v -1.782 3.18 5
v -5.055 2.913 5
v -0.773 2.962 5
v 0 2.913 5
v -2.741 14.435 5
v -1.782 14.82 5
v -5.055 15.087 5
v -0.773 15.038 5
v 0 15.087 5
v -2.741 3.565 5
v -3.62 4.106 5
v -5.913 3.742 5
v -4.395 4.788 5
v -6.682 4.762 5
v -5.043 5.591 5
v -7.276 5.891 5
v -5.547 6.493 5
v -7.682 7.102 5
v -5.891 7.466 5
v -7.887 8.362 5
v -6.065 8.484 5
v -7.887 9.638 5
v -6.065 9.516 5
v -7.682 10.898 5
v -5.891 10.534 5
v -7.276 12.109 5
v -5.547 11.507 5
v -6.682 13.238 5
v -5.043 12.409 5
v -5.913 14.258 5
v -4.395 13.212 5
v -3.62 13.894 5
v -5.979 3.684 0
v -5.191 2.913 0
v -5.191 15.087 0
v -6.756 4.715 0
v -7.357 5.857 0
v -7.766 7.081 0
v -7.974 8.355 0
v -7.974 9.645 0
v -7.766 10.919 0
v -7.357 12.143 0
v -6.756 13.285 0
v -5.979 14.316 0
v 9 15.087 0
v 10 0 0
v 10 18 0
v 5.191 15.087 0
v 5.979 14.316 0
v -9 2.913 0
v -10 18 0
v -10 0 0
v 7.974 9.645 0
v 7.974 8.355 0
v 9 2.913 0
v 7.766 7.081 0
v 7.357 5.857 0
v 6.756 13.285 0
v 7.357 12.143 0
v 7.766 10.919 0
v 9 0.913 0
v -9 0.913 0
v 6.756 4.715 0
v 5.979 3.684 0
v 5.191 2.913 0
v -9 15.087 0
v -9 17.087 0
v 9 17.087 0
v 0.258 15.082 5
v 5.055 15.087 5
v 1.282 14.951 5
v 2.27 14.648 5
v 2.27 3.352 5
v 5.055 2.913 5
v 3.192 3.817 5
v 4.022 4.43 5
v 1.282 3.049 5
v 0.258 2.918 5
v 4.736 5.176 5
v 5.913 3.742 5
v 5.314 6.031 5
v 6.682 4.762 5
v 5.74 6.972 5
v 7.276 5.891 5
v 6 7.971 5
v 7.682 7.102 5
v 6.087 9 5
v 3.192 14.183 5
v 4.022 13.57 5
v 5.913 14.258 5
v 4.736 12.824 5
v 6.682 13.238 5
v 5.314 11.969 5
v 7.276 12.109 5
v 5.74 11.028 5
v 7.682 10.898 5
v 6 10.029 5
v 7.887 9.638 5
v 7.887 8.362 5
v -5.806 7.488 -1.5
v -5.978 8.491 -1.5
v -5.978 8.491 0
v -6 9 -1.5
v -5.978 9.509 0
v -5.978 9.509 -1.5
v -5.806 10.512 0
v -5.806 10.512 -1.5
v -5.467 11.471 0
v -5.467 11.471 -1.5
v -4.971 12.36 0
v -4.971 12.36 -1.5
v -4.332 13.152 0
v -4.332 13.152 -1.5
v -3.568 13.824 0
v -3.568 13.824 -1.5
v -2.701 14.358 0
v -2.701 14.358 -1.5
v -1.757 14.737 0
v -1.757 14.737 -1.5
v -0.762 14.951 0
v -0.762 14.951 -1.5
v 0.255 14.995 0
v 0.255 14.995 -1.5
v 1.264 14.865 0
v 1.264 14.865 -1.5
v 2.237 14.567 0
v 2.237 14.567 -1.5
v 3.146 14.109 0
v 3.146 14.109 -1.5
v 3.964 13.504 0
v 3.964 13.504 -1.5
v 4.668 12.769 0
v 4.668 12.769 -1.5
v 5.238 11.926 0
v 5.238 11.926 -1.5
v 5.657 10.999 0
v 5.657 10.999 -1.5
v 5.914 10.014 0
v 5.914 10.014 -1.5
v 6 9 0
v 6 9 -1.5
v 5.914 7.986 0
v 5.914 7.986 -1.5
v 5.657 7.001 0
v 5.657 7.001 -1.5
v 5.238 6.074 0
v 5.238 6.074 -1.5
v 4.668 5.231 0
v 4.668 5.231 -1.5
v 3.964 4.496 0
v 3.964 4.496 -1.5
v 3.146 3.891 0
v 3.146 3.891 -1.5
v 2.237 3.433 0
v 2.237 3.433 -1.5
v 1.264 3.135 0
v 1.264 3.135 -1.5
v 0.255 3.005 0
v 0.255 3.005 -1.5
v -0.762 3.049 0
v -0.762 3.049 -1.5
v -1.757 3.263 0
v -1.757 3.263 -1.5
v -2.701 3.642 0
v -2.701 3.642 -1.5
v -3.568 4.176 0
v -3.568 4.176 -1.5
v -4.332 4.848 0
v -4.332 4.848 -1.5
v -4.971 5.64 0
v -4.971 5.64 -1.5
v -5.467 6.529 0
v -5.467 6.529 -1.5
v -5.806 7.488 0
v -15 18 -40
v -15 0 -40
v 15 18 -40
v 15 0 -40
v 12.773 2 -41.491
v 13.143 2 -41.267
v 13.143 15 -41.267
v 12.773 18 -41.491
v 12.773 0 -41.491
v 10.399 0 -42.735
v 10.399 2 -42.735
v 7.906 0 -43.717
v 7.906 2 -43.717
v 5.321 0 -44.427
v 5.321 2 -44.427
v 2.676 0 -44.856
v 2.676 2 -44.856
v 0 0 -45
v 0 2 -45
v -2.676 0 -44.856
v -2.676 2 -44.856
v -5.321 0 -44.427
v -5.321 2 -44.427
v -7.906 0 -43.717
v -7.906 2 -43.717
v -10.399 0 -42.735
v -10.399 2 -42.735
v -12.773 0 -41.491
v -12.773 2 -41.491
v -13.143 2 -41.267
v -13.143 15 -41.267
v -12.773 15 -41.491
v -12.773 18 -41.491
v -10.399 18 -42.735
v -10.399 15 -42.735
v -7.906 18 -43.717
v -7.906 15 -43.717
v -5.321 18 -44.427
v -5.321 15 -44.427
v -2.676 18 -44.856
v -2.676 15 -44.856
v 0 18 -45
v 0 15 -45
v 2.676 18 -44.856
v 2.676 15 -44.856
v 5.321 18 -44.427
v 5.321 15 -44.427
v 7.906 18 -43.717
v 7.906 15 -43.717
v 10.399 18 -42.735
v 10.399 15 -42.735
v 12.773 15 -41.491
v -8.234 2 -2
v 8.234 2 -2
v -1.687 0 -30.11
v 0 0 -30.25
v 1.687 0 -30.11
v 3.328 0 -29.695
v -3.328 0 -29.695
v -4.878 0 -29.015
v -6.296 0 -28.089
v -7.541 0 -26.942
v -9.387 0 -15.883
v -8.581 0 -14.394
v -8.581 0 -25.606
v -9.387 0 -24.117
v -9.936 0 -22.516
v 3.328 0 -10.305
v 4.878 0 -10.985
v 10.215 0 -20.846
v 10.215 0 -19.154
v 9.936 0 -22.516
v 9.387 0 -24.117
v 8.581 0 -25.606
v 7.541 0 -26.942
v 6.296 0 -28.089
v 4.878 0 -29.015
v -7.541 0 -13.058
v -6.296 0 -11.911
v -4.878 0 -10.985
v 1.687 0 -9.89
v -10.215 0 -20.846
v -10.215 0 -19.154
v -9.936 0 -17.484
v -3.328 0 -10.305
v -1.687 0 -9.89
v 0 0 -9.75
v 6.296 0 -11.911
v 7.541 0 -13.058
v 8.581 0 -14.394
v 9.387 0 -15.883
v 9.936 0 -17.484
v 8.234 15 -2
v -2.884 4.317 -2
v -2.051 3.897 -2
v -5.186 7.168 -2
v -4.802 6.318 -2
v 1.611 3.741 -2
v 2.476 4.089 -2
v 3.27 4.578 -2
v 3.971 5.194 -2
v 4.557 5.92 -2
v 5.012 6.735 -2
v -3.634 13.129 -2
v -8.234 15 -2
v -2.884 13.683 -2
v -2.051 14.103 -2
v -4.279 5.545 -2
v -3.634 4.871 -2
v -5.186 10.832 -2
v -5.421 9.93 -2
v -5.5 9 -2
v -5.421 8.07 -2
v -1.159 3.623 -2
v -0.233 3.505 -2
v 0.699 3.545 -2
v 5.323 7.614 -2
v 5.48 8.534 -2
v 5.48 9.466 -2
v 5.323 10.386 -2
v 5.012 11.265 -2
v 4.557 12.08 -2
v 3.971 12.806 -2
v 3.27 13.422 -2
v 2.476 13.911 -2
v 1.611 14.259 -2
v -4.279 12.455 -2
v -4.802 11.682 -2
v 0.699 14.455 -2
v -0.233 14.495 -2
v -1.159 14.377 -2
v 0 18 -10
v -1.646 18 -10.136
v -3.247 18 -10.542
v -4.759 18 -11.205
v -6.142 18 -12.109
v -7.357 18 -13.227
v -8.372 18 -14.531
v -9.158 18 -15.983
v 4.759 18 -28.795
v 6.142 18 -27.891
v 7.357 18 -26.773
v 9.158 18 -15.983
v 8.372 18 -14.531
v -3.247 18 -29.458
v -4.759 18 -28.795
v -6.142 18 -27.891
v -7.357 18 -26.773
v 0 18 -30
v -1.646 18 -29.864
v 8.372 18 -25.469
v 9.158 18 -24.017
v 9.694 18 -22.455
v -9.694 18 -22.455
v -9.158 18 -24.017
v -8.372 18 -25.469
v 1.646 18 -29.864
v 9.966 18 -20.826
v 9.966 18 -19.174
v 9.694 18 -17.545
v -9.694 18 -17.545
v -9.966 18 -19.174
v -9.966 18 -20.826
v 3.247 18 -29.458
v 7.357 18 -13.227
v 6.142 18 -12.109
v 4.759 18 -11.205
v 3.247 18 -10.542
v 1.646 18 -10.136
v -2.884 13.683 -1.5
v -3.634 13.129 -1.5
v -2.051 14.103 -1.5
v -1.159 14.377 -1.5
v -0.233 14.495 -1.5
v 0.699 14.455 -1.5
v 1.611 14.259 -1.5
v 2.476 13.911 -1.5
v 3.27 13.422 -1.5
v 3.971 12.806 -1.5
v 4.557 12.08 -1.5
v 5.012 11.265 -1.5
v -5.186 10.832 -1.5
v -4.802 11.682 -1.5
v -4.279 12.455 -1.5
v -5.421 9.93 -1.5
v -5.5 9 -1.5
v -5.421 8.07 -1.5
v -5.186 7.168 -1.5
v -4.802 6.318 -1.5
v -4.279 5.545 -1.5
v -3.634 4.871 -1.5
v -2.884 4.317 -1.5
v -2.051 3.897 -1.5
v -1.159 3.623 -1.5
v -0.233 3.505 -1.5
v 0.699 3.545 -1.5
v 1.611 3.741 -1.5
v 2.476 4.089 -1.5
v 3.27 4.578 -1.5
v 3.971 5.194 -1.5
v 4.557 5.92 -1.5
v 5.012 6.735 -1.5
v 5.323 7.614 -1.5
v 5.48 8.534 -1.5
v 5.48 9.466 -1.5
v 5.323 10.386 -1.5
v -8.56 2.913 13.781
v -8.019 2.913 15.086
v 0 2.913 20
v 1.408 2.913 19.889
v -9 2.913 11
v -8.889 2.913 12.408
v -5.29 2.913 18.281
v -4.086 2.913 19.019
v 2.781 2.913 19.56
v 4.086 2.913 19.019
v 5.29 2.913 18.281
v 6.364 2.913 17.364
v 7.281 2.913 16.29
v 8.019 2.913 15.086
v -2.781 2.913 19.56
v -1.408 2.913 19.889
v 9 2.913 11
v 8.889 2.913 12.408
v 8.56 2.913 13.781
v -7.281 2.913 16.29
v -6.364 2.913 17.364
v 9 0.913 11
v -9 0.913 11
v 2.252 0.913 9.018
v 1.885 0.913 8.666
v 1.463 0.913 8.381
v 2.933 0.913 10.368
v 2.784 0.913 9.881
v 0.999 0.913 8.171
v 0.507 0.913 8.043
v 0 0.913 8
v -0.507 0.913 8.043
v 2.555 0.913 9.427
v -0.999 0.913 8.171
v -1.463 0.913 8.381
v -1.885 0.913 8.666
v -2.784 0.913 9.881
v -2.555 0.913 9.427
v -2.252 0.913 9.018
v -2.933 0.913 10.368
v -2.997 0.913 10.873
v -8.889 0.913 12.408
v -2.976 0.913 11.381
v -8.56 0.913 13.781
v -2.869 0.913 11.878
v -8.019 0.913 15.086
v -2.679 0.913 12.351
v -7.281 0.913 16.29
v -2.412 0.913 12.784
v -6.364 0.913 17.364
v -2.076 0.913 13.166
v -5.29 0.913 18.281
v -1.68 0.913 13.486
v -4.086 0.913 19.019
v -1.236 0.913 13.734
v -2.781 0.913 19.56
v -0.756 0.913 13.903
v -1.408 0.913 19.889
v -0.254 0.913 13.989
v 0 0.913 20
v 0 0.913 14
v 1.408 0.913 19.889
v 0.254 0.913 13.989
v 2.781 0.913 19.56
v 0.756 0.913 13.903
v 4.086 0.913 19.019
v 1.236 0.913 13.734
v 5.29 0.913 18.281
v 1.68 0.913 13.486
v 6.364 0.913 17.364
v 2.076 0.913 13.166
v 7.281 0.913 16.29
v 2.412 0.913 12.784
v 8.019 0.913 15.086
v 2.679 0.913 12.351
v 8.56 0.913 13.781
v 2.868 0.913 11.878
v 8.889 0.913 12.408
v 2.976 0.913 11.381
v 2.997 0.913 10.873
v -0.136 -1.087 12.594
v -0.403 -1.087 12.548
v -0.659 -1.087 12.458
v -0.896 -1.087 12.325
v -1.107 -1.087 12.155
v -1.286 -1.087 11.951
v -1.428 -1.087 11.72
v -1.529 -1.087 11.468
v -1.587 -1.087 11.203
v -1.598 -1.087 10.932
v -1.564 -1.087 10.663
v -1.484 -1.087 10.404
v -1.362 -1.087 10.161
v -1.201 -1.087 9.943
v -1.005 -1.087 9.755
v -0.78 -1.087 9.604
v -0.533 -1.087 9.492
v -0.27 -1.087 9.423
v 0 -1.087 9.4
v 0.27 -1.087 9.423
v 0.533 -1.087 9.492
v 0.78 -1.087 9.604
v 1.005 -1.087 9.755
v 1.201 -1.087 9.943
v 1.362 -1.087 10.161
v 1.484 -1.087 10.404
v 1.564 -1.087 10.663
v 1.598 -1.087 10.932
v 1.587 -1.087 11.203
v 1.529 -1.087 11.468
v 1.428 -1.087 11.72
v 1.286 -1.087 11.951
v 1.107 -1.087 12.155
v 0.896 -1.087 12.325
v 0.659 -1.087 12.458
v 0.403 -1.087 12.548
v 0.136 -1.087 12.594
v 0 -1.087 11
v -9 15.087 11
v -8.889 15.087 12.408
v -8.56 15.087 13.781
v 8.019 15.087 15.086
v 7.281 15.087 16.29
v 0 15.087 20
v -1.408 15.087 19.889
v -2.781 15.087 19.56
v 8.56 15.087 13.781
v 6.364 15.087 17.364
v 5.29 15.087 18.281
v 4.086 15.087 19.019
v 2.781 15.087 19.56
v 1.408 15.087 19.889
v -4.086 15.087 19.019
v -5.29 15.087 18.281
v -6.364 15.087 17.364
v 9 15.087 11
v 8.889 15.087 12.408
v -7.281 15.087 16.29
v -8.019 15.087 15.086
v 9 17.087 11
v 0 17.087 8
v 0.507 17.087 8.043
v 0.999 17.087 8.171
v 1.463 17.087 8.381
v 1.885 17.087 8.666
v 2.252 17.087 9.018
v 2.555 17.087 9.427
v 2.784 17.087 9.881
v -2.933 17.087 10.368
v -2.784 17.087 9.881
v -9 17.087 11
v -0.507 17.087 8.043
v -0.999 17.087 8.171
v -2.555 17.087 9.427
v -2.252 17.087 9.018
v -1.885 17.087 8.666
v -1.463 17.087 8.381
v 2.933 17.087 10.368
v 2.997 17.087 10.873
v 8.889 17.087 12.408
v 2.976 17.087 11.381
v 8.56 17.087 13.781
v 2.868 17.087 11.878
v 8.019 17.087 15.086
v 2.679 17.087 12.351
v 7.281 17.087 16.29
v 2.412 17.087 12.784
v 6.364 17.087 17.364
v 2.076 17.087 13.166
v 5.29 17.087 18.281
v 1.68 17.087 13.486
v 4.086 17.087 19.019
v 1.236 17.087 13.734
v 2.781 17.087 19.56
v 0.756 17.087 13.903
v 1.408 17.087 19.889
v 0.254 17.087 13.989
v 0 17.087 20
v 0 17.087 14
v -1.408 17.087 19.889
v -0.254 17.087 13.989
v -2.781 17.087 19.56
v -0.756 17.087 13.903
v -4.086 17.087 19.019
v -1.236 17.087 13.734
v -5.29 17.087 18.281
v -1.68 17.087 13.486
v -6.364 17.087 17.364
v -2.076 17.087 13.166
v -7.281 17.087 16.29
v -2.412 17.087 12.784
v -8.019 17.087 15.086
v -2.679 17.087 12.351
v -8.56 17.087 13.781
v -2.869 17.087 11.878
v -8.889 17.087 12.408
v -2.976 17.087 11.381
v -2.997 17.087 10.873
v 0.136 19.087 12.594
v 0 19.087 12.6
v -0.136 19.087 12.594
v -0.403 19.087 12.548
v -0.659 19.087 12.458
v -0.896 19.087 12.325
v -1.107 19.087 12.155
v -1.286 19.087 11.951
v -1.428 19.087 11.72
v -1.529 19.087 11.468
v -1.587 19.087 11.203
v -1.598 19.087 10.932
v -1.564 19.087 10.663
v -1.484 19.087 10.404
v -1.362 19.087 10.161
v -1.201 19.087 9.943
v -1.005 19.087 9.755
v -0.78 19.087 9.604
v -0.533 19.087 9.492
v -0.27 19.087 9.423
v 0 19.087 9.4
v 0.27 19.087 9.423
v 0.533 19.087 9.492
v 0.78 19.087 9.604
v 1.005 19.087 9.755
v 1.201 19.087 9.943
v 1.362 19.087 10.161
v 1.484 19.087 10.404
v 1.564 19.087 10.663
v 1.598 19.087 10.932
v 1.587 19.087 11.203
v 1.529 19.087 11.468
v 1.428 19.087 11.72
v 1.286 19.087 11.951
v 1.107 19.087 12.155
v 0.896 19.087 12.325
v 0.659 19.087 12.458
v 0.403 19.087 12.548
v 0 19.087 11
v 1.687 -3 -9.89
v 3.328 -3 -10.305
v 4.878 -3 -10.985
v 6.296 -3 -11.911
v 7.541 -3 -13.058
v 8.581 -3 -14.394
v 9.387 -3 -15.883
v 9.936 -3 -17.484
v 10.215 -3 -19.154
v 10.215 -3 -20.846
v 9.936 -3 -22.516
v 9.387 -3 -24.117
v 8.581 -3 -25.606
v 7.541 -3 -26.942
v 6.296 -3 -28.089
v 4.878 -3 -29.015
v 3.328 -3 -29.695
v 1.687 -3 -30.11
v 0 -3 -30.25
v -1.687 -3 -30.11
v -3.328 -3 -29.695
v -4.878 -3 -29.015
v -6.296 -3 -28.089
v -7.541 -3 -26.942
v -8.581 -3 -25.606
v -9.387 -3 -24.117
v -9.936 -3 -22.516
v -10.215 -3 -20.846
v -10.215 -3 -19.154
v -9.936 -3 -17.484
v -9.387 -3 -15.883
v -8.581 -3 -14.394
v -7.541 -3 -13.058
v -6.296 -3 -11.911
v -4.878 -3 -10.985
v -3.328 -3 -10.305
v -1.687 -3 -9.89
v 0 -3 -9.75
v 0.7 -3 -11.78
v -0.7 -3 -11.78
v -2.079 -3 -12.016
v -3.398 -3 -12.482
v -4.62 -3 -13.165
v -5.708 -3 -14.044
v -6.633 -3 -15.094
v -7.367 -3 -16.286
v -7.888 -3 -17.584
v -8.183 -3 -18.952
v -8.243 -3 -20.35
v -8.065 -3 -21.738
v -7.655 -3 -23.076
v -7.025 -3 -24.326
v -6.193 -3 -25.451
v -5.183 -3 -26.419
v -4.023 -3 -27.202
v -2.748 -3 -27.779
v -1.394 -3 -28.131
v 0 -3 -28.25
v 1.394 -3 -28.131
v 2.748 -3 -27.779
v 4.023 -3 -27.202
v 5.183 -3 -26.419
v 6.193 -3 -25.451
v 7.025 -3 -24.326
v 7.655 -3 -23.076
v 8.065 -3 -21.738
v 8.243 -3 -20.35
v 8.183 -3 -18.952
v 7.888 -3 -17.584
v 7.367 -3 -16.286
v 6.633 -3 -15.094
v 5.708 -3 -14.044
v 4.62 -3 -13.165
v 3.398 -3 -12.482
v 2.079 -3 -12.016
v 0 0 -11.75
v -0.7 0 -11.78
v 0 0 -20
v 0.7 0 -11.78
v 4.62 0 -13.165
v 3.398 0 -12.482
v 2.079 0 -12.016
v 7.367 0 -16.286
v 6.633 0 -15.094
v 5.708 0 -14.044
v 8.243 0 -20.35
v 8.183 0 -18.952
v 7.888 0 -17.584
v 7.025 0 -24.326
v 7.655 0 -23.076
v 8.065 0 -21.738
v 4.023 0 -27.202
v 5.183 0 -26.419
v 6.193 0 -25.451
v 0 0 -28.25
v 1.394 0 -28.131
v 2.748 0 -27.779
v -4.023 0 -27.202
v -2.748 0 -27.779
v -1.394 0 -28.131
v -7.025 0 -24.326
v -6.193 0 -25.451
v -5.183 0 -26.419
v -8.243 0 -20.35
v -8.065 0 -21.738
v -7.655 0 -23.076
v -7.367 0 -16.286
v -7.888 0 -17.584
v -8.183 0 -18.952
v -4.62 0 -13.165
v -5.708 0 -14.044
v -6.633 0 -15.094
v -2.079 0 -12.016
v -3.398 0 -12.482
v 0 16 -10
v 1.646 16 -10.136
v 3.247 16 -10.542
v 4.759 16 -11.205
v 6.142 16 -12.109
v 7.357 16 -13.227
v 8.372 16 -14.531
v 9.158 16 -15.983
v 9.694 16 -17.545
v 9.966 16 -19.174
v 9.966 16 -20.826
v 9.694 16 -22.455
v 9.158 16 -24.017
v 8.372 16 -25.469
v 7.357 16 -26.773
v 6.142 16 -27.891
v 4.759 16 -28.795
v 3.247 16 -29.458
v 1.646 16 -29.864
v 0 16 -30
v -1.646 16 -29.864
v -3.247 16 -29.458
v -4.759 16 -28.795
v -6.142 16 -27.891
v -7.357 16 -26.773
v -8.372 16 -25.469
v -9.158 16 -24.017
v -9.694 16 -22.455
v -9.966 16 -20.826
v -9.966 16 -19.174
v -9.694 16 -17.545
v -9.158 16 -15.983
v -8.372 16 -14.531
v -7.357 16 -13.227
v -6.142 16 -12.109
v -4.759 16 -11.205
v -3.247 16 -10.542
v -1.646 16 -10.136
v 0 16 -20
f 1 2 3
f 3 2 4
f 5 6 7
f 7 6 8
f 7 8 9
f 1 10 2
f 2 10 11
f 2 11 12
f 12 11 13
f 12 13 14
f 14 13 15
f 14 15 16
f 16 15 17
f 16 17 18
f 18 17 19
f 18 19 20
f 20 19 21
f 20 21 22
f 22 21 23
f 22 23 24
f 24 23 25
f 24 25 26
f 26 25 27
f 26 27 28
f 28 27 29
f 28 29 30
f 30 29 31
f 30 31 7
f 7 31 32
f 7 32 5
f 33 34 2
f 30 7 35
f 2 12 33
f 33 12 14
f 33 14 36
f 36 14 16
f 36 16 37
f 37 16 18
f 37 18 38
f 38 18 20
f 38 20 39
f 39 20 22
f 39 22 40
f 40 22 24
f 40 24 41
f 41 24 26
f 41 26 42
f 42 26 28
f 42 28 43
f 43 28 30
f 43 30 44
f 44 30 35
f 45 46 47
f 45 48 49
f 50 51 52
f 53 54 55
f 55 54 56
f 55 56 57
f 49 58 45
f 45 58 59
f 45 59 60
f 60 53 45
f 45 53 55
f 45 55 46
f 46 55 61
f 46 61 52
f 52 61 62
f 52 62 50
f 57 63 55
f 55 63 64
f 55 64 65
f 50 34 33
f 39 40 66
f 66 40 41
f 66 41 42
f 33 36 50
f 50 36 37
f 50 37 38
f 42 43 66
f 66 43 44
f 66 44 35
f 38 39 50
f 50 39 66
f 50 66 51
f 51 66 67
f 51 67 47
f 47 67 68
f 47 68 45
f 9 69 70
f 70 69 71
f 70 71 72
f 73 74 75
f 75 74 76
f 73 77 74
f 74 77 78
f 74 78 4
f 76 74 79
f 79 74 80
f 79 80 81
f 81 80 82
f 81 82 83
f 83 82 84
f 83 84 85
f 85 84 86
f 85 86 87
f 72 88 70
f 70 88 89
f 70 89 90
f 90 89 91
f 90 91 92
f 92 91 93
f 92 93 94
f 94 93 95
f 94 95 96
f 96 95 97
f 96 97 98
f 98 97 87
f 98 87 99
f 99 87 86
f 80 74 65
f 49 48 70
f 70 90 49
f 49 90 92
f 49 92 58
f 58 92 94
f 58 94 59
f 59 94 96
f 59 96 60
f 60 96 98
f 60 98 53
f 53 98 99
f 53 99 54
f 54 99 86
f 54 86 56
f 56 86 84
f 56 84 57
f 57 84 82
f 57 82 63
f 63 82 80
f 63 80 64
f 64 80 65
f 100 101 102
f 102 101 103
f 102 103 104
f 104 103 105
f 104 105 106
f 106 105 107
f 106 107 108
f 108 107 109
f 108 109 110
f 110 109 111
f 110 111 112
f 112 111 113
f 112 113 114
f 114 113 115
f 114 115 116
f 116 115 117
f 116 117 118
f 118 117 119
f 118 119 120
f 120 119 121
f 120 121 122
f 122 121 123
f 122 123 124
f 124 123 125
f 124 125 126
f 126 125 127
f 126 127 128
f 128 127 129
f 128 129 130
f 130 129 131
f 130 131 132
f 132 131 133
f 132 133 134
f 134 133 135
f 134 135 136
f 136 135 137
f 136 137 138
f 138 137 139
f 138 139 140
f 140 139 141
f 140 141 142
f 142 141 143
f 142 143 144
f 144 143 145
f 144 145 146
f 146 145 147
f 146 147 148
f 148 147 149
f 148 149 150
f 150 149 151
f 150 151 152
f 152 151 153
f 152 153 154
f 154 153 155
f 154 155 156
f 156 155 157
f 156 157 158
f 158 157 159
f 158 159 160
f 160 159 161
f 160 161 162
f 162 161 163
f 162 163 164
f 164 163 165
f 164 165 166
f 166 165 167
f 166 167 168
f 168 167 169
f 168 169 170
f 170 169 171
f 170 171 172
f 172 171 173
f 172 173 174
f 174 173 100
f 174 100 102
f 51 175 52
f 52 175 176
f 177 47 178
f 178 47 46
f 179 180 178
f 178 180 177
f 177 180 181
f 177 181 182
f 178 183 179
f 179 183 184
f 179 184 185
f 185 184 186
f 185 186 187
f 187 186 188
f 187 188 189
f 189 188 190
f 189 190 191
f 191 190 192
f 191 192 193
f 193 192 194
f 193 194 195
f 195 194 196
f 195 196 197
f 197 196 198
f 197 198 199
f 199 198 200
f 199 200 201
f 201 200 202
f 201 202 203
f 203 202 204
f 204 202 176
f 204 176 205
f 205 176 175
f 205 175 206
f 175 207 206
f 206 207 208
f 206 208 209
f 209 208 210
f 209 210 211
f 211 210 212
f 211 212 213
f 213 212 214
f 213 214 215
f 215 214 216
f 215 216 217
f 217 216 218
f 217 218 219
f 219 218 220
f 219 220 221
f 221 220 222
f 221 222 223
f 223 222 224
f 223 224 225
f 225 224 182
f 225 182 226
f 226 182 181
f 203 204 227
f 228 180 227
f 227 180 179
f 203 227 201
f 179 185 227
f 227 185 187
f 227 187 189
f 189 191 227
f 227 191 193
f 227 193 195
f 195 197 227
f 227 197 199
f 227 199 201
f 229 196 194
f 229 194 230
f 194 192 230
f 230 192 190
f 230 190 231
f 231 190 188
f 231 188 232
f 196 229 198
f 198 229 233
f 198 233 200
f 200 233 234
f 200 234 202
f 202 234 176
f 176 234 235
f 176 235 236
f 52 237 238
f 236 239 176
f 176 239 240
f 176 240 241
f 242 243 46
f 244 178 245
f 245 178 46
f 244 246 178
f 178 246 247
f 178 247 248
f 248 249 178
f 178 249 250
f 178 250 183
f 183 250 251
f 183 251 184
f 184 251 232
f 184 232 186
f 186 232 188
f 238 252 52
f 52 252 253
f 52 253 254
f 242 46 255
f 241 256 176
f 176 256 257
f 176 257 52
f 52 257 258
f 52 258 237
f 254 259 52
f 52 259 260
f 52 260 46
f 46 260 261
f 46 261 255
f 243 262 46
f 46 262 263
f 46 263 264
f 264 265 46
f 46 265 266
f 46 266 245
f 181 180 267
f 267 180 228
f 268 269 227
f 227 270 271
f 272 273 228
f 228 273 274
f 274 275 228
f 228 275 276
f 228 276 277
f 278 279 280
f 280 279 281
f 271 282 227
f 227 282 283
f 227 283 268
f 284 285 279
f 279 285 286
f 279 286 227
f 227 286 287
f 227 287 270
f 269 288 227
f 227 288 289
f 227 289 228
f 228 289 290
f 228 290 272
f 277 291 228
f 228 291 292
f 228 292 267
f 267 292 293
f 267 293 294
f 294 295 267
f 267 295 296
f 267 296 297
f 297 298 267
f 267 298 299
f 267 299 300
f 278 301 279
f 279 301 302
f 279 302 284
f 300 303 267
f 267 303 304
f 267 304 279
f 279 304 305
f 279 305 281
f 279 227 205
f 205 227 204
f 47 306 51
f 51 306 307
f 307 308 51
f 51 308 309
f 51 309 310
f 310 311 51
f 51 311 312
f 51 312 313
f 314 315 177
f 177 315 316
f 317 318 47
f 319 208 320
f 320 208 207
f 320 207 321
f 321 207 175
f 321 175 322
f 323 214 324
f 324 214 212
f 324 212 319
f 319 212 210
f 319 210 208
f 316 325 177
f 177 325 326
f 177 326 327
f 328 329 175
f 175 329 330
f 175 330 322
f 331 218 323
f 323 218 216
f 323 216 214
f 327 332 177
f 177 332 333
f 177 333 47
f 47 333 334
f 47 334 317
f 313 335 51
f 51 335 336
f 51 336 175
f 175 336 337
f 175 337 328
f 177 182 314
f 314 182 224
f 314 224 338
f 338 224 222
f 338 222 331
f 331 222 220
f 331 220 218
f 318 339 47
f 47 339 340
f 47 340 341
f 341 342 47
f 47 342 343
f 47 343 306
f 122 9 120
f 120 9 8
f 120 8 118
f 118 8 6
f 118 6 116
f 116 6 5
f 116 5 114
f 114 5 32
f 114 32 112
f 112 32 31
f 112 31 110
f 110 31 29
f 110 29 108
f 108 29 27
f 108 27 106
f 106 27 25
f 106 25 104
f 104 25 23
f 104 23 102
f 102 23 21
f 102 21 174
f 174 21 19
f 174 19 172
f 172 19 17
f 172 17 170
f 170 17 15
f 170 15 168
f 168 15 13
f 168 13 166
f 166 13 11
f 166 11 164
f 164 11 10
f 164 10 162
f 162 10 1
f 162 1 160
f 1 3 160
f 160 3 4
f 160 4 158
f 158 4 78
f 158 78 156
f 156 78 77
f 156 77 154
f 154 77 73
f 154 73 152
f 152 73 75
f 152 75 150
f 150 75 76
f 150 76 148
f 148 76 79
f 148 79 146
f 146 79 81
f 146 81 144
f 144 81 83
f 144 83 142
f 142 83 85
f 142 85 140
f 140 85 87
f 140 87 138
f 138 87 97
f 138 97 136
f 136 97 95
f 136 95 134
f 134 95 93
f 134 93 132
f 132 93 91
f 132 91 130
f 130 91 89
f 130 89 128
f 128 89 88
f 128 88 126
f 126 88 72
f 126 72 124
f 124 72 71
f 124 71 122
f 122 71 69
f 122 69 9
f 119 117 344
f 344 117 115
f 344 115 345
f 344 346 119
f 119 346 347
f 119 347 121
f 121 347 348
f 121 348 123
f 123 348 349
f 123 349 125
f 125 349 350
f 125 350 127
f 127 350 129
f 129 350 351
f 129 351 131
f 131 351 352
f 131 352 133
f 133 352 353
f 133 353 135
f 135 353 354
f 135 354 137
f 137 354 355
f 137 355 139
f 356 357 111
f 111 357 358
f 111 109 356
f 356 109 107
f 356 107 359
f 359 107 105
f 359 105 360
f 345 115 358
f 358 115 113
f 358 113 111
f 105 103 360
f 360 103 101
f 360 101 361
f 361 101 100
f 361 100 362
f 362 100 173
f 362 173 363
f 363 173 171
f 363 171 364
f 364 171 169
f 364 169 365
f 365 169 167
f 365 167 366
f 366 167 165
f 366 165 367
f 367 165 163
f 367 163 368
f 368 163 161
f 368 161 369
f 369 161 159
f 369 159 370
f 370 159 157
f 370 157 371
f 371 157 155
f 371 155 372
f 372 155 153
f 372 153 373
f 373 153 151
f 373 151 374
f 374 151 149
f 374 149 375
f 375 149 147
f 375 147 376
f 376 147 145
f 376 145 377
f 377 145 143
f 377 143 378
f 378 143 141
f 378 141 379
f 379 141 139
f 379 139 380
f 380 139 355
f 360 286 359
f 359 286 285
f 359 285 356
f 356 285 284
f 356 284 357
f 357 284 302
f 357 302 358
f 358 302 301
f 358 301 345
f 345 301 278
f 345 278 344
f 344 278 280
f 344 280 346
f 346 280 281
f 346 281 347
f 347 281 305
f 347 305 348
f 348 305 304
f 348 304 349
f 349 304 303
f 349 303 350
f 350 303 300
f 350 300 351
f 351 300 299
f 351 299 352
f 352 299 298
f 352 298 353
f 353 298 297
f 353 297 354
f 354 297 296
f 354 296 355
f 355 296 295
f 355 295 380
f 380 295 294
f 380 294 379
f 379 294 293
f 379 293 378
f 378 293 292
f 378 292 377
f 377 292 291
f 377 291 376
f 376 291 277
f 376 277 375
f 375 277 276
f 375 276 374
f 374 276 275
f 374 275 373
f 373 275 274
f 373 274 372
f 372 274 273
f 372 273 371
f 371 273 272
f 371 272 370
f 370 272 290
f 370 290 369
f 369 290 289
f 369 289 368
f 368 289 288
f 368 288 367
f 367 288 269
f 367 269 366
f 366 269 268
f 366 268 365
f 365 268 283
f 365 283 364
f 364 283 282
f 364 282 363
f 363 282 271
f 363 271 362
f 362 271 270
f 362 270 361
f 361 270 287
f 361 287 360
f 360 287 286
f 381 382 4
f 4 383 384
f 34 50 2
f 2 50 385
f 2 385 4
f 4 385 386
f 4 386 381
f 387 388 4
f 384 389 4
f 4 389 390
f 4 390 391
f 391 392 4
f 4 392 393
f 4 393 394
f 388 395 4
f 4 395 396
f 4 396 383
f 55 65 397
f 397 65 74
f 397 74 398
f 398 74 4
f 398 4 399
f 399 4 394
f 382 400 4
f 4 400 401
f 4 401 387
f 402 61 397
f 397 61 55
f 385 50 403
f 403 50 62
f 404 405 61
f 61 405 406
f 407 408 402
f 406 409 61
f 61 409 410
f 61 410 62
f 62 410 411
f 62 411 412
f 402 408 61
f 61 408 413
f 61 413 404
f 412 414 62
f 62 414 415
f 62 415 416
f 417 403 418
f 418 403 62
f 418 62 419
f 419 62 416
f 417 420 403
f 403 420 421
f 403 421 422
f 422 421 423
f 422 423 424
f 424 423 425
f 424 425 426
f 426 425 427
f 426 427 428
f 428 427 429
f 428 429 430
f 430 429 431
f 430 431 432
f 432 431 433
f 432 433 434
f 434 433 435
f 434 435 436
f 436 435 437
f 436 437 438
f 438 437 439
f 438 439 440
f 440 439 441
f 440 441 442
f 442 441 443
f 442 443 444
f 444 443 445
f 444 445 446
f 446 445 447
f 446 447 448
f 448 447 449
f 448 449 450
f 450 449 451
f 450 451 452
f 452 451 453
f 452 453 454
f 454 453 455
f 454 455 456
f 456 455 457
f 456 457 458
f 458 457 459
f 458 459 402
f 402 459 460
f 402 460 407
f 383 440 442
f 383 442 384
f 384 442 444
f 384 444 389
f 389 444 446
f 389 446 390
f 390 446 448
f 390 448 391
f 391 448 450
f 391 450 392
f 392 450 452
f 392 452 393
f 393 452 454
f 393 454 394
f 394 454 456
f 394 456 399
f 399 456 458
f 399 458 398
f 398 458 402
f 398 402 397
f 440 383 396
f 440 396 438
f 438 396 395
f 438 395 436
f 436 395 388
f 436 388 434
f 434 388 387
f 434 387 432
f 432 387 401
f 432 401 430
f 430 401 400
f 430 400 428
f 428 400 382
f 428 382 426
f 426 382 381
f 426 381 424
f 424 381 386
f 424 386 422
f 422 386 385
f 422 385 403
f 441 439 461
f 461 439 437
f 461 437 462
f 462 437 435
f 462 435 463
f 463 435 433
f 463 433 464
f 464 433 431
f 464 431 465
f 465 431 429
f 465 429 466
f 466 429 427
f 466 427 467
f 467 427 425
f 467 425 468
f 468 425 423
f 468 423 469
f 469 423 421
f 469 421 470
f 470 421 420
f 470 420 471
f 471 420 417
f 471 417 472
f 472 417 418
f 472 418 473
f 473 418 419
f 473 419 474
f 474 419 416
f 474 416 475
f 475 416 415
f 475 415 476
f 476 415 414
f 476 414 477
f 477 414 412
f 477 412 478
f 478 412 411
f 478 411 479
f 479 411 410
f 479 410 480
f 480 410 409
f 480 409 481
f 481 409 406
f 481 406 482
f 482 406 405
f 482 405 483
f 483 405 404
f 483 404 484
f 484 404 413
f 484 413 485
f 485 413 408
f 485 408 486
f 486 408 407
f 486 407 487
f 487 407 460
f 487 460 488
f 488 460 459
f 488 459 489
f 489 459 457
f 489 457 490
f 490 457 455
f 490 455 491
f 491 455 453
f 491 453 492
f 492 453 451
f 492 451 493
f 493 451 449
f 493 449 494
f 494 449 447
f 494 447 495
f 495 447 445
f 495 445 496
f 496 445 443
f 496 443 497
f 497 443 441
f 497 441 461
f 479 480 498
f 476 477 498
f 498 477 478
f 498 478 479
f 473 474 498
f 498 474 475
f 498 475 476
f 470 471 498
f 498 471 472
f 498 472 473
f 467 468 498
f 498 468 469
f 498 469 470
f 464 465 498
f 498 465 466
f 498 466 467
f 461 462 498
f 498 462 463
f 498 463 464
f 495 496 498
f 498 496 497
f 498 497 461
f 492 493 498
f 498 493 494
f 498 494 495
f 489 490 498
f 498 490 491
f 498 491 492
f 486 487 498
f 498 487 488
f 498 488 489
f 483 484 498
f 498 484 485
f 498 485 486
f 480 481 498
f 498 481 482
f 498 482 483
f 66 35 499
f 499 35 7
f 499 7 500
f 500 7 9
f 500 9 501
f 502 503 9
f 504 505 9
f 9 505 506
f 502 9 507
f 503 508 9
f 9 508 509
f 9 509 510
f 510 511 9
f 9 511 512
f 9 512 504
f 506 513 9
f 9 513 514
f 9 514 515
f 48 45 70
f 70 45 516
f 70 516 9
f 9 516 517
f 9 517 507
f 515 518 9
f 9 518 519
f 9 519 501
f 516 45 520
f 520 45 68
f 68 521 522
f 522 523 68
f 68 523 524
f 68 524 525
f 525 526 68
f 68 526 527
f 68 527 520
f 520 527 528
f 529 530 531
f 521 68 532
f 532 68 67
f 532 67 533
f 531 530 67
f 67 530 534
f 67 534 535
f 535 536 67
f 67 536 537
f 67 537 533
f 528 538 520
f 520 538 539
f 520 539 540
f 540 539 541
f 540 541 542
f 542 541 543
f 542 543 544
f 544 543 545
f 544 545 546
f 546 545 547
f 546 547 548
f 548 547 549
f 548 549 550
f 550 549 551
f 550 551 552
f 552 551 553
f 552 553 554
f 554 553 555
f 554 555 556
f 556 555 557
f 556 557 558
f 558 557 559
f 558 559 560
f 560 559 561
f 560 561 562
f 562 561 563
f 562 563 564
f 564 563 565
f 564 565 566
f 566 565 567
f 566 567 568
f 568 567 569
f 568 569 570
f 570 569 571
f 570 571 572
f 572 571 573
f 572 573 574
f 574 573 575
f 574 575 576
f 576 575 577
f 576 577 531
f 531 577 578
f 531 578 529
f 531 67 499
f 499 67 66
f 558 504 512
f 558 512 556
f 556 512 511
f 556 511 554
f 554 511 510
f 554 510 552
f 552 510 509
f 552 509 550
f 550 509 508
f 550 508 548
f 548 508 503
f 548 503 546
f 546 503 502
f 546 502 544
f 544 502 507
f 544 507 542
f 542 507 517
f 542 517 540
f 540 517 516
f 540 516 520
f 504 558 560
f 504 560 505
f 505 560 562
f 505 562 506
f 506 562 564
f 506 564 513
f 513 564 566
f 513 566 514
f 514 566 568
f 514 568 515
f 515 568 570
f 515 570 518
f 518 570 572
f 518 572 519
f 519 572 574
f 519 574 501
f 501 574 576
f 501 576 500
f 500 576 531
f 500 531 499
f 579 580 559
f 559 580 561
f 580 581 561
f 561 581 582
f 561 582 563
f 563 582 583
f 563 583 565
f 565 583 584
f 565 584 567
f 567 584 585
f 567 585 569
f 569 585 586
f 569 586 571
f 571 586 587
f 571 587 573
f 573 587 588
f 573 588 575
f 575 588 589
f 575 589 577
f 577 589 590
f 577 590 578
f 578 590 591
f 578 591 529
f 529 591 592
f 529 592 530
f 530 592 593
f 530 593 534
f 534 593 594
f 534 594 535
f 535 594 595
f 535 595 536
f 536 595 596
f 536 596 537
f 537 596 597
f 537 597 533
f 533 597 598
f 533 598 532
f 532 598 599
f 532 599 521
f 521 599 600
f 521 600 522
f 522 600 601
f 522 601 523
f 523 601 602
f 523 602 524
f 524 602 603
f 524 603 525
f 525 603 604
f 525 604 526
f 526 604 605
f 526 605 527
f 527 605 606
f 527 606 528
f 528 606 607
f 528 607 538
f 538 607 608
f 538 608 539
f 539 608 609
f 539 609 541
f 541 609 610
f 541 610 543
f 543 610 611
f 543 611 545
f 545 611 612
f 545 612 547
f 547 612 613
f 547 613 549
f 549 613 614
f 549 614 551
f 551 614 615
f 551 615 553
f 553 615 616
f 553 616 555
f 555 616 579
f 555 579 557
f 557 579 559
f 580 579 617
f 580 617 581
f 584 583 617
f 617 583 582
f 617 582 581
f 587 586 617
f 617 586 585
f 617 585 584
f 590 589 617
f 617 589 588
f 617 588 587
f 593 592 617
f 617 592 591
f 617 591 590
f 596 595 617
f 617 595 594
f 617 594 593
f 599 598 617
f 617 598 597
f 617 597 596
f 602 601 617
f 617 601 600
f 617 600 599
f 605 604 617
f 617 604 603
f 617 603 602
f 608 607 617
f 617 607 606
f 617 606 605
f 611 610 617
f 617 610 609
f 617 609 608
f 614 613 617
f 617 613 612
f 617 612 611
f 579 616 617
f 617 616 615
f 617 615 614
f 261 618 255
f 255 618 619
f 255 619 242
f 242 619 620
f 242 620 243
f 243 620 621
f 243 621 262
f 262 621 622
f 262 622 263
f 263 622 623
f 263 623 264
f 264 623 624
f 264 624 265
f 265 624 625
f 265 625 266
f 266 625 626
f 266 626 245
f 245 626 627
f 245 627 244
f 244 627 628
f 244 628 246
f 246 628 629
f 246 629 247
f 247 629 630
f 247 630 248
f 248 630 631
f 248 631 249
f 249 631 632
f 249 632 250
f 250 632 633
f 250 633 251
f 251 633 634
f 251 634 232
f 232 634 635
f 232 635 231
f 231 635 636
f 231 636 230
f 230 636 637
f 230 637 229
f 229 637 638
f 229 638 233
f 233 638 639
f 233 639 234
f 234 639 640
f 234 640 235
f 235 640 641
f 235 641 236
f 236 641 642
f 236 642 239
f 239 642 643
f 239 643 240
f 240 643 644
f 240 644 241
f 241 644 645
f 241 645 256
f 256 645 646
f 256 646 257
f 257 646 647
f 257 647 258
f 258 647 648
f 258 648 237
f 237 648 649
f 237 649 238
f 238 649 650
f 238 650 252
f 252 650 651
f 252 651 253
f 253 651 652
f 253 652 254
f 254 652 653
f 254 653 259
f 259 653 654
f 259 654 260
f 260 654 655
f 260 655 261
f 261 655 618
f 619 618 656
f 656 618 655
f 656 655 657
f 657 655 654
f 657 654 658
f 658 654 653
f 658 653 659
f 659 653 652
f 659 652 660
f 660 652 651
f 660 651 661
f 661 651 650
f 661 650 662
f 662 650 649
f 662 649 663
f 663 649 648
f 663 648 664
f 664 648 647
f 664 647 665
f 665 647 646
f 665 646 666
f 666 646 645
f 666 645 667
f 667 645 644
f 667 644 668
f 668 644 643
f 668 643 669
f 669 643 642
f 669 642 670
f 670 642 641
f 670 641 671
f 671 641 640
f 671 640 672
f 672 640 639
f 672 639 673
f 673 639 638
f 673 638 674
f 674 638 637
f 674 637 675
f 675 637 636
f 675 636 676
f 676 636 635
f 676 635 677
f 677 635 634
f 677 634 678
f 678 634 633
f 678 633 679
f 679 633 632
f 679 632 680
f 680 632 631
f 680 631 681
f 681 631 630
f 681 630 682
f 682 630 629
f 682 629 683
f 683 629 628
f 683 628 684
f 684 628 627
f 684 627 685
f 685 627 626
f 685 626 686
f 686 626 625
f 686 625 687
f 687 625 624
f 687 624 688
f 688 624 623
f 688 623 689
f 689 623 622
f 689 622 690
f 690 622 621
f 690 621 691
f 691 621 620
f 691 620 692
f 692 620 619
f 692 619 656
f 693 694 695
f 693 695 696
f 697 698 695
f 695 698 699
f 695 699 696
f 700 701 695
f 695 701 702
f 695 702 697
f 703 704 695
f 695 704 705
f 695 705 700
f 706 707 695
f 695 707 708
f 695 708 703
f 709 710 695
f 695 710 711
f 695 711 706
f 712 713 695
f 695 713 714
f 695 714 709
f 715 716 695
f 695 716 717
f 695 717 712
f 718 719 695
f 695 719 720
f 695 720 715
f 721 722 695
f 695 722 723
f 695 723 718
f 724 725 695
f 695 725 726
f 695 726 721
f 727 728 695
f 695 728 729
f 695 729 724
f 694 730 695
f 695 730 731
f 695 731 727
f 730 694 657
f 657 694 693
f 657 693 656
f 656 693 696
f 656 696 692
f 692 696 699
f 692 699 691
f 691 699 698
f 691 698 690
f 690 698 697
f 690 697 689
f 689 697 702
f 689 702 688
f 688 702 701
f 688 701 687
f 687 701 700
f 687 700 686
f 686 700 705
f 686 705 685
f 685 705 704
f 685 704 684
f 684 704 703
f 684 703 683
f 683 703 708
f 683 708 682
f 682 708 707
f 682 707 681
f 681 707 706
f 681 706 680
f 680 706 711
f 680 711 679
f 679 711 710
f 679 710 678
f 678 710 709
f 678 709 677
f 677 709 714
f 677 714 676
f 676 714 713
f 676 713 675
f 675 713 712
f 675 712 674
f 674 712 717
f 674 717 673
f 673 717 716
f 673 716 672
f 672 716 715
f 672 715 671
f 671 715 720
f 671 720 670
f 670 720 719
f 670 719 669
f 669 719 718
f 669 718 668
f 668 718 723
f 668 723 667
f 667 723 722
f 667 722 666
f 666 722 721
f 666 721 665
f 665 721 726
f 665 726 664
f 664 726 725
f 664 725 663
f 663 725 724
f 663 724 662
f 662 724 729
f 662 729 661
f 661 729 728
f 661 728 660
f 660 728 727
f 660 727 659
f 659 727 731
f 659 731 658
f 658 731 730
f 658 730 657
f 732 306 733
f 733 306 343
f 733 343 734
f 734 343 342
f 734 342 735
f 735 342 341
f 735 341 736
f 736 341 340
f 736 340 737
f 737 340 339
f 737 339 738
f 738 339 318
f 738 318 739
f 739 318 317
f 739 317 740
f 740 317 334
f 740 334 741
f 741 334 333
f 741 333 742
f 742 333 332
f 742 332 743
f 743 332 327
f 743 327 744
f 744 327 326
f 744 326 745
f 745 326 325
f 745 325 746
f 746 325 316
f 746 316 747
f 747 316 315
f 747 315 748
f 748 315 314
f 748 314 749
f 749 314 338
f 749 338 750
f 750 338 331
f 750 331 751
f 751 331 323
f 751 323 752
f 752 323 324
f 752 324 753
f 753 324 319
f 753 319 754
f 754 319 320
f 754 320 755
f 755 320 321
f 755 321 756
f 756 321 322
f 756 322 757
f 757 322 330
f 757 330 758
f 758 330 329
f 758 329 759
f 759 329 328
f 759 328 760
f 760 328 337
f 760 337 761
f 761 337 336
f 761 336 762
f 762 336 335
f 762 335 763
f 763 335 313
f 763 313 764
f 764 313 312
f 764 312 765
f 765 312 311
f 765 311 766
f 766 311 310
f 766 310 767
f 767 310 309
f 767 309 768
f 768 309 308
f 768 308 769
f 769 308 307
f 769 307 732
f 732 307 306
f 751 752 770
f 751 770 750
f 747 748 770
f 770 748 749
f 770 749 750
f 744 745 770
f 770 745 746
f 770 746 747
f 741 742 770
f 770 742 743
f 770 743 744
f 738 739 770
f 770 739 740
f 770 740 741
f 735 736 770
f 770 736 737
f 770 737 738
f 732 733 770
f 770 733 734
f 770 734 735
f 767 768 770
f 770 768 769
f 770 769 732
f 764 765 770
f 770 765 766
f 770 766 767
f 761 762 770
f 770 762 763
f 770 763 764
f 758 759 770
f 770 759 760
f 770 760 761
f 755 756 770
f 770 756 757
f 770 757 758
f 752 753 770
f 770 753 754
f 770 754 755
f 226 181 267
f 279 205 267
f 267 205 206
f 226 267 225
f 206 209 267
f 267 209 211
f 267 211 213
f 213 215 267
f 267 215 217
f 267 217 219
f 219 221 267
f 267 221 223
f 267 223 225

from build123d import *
from build123d.topology import SkipClean

# Parameters (mm, degrees)
BOSS_EXTRUDE1_DEPTH  = 2
BOSS_EXTRUDE2_DEPTH  = 14
BOSS_EXTRUDE3_DEPTH  = 2
SKETCH5_R            = 6
CUT_EXTRUDE1_DEPTH   = 2
SKETCH6_R            = 8
SKETCH6_R_2          = 6
EXTRUDE_THIN1_DEPTH  = 5
EXTRUDE_THIN1_DRAFT  = 1
BOSS_EXTRUDE4_START  = -0.5
SKETCH7_R            = 6
SKETCH7_R_2          = 5.5
BOSS_EXTRUDE4_DEPTH  = 0.5
SKETCH16_W           = 18
SKETCH16_H           = 2
BOSS_EXTRUDE8_DEPTH  = 20
FILLET1_R            = 9
SKETCH17_R           = 3
BOSS_EXTRUDE9_DEPTH  = 2
BOSS_EXTRUDE9_TAPER  = 35
FILLET1_OF_MIRROR2_R = 9
SKETCH8_R            = 10.25
BOSS_EXTRUDE10_DEPTH = 3
SKETCH18_R           = 8.25
CUT_EXTRUDE2_DEPTH   = 3
CUT_EXTRUDE3_REACH   = 53.875
SKETCH19_R           = 10
BOSS_EXTRUDE11_START = 1
BOSS_EXTRUDE11_DEPTH = 1


with BuildPart() as part:
    # Sketch2 → Boss-Extrude1 (new body)
    with BuildSketch(Plane(origin=(0, 0, 0), x_dir=(1, 0, 0), z_dir=(0, 1, 0))):
        with BuildLine():
            Line((-10, 0), (10, 0))
            Line((10, 0), (15, 40))
            ThreePointArc((15, 40), (0, 45), (-15, 40))
            Line((-15, 40), (-10, 0))
        make_face()
    extrude(amount=BOSS_EXTRUDE1_DEPTH)

    # Sketch3 → Boss-Extrude2 (add)
    with SkipClean():  # the faces are left unmerged after this step: merging them gives an invalid solid
        with BuildSketch(Plane(origin=(0, 2, 0), x_dir=(1, 0, 0), z_dir=(0, 1, 0))):
            with BuildLine():
                Line((-13.142759388, 41.266590598), (-8.234435563, 2))
                Line((-8.234435563, 2), (8.234435563, 2))
                Line((8.234435563, 2), (13.142759388, 41.266590598))
                ThreePointArc((13.142759388, 41.266590598), (14.085623501, 40.654181431), (15, 40))
                Line((15, 40), (10, 0))
                Line((10, 0), (-10, 0))
                Line((-10, 0), (-15, 40))
                ThreePointArc((-15, 40), (-14.085623501, 40.654181431), (-13.142759388, 41.266590598))
            make_face()
        extrude(amount=BOSS_EXTRUDE2_DEPTH)

    # Sketch4 → Boss-Extrude3 (add)
    with SkipClean():  # the faces are left unmerged after this step: merging them gives an invalid solid
        with BuildSketch(Plane(origin=(0, 16, 0), x_dir=(1, 0, 0), z_dir=(0, 1, 0))):
            with BuildLine():
                Line((-15, 40), (-10, 0))
                Line((-10, 0), (10, 0))
                Line((10, 0), (15, 40))
                ThreePointArc((15, 40), (0, 45), (-15, 40))
            make_face()
        extrude(amount=BOSS_EXTRUDE3_DEPTH)

    # Sketch5 → Cut-Extrude1 (cut)
    with SkipClean():  # the faces are left unmerged after this step: merging them gives an invalid solid
        with BuildSketch(Plane.XY):
            with Locations((0, 9)):
                Circle(SKETCH5_R)
        extrude(amount=-CUT_EXTRUDE1_DEPTH, mode=Mode.SUBTRACT)


with BuildPart() as extrude_thin1_tool:
    # Sketch6 → Extrude-Thin1 (with draft: the straight prism first)
    with BuildSketch(Plane.XY):
        with Locations((0, 9)):
            Circle(SKETCH6_R)
        with Locations((0, 9)):
            Circle(SKETCH6_R_2, mode=Mode.SUBTRACT)
    extrude(amount=EXTRUDE_THIN1_DEPTH)
    # Extrude-Thin1: the draft: its side faces are tilted about the plane it starts from
    extrude_thin1_sides = [extrude_thin1_tool.faces().sort_by_distance(p)[0] for p in [
        (-8, 9, 2.5),
        (-6, 9, 2.5),
    ]]
    draft(extrude_thin1_sides, Plane.XY, EXTRUDE_THIN1_DRAFT)


with BuildPart() as part_1:
    add(part.part)

    # Extrude-Thin1: add extrude_thin1_tool
    add(extrude_thin1_tool.part)

    # Sketch7 → Boss-Extrude4 (add)
    with SkipClean():  # the faces are left unmerged after this step: merging them gives an invalid solid
        with BuildSketch(Plane(origin=(0, 0, -2), x_dir=(-1, 0, 0), z_dir=(0, 0, -1)).offset(BOSS_EXTRUDE4_START)):
            with Locations(Location((0, 9, 0), (0, 0, 180))):
                Circle(SKETCH7_R)
            with Locations((0, 9)):
                Circle(SKETCH7_R_2, mode=Mode.SUBTRACT)
        extrude(amount=BOSS_EXTRUDE4_DEPTH)

    # Sketch16 → Boss-Extrude8 (add)
    with SkipClean():  # the faces are left unmerged after this step: merging them gives an invalid solid
        with BuildSketch(Plane.XY):
            with Locations((0, 1.912724675)):
                Rectangle(SKETCH16_W, SKETCH16_H)
        boss_extrude8 = extrude(amount=BOSS_EXTRUDE8_DEPTH)

    # Fillet1
    fillet1_edges = [part_1.edges().sort_by_distance(p)[0] for p in [
        (-9, 1.912724675, 20),
        (9, 1.912724675, 20),
    ]]
    fillet(fillet1_edges, radius=FILLET1_R - 0.0001)  # a hair under: the kernel refuses the full size

    # Sketch17 → Boss-Extrude9 (add)
    with BuildSketch(Plane.XZ.offset(-0.912724675)):
        with Locations((0, 11)):
            Circle(SKETCH17_R)
    boss_extrude9 = extrude(amount=BOSS_EXTRUDE9_DEPTH, taper=BOSS_EXTRUDE9_TAPER)

    # Mirror2: Boss-Extrude8, Boss-Extrude9 across plane
    add(boss_extrude8.mirror(Plane(origin=(0, 9, 0), x_dir=(0, 0, 1), z_dir=(0, -1, 0))))
    add(boss_extrude9.mirror(Plane(origin=(0, 9, 0), x_dir=(0, 0, 1), z_dir=(0, -1, 0))))

    # Fillet1 of Mirror2
    fillet1_of_mirror2_edges = [part_1.edges().sort_by_distance(p)[0] for p in [
        (-9, 16.087275325, 20),
        (9, 16.087275325, 20),
    ]]
    fillet(fillet1_of_mirror2_edges, radius=FILLET1_OF_MIRROR2_R - 0.0001)  # a hair under: the kernel refuses the full size

    # Sketch8 → Boss-Extrude10 (add)
    with BuildSketch(Plane(origin=(0, 0, 0), x_dir=(1, 0, 0), z_dir=(0, 1, 0))):
        with Locations(Location((0, 20, 0), (0, 0, 270))):
            Circle(SKETCH8_R)
    extrude(amount=-BOSS_EXTRUDE10_DEPTH)

    # Sketch18 → Cut-Extrude2 (cut)
    with BuildSketch(Plane(origin=(0, -3, 0), x_dir=(-1, 0, 0), z_dir=(0, -1, 0))):
        with Locations(Location((0, 20, 0), (0, 0, 90))):
            Circle(SKETCH18_R)
    extrude(amount=-CUT_EXTRUDE2_DEPTH, mode=Mode.SUBTRACT)

    # Sketch19 → Cut-Extrude3 (cut, up to next)
    with BuildSketch(Plane(origin=(0, 18, 0), x_dir=(1, 0, 0), z_dir=(0, 1, 0)), mode=Mode.PRIVATE) as cut_extrude3_sk1:
        with Locations(Location((0, 20, 0), (0, 0, 270))):
            Circle(SKETCH19_R)
    cut_extrude3_tool1 = extrude(cut_extrude3_sk1.sketch, amount=-CUT_EXTRUDE3_REACH, mode=Mode.PRIVATE) & part_1.part
    add(cut_extrude3_tool1.solids().sort_by_distance((0, 18, -20))[0], mode=Mode.SUBTRACT)

    # Sketch20 → Boss-Extrude11 (add)
    with BuildSketch(Plane.XZ.offset(-16).offset(BOSS_EXTRUDE11_START)):
        with BuildLine():
            Line((13.142759388, -41.266590598), (8.234435563, -2))
            Line((8.234435563, -2), (-8.234435563, -2))
            Line((-8.234435563, -2), (-13.142759388, -41.266590598))
            ThreePointArc((-13.142759388, -41.266590598), (0, -45), (13.142759388, -41.266590598))
        make_face()
    extrude(amount=-BOSS_EXTRUDE11_DEPTH)


solid = part_1.part
